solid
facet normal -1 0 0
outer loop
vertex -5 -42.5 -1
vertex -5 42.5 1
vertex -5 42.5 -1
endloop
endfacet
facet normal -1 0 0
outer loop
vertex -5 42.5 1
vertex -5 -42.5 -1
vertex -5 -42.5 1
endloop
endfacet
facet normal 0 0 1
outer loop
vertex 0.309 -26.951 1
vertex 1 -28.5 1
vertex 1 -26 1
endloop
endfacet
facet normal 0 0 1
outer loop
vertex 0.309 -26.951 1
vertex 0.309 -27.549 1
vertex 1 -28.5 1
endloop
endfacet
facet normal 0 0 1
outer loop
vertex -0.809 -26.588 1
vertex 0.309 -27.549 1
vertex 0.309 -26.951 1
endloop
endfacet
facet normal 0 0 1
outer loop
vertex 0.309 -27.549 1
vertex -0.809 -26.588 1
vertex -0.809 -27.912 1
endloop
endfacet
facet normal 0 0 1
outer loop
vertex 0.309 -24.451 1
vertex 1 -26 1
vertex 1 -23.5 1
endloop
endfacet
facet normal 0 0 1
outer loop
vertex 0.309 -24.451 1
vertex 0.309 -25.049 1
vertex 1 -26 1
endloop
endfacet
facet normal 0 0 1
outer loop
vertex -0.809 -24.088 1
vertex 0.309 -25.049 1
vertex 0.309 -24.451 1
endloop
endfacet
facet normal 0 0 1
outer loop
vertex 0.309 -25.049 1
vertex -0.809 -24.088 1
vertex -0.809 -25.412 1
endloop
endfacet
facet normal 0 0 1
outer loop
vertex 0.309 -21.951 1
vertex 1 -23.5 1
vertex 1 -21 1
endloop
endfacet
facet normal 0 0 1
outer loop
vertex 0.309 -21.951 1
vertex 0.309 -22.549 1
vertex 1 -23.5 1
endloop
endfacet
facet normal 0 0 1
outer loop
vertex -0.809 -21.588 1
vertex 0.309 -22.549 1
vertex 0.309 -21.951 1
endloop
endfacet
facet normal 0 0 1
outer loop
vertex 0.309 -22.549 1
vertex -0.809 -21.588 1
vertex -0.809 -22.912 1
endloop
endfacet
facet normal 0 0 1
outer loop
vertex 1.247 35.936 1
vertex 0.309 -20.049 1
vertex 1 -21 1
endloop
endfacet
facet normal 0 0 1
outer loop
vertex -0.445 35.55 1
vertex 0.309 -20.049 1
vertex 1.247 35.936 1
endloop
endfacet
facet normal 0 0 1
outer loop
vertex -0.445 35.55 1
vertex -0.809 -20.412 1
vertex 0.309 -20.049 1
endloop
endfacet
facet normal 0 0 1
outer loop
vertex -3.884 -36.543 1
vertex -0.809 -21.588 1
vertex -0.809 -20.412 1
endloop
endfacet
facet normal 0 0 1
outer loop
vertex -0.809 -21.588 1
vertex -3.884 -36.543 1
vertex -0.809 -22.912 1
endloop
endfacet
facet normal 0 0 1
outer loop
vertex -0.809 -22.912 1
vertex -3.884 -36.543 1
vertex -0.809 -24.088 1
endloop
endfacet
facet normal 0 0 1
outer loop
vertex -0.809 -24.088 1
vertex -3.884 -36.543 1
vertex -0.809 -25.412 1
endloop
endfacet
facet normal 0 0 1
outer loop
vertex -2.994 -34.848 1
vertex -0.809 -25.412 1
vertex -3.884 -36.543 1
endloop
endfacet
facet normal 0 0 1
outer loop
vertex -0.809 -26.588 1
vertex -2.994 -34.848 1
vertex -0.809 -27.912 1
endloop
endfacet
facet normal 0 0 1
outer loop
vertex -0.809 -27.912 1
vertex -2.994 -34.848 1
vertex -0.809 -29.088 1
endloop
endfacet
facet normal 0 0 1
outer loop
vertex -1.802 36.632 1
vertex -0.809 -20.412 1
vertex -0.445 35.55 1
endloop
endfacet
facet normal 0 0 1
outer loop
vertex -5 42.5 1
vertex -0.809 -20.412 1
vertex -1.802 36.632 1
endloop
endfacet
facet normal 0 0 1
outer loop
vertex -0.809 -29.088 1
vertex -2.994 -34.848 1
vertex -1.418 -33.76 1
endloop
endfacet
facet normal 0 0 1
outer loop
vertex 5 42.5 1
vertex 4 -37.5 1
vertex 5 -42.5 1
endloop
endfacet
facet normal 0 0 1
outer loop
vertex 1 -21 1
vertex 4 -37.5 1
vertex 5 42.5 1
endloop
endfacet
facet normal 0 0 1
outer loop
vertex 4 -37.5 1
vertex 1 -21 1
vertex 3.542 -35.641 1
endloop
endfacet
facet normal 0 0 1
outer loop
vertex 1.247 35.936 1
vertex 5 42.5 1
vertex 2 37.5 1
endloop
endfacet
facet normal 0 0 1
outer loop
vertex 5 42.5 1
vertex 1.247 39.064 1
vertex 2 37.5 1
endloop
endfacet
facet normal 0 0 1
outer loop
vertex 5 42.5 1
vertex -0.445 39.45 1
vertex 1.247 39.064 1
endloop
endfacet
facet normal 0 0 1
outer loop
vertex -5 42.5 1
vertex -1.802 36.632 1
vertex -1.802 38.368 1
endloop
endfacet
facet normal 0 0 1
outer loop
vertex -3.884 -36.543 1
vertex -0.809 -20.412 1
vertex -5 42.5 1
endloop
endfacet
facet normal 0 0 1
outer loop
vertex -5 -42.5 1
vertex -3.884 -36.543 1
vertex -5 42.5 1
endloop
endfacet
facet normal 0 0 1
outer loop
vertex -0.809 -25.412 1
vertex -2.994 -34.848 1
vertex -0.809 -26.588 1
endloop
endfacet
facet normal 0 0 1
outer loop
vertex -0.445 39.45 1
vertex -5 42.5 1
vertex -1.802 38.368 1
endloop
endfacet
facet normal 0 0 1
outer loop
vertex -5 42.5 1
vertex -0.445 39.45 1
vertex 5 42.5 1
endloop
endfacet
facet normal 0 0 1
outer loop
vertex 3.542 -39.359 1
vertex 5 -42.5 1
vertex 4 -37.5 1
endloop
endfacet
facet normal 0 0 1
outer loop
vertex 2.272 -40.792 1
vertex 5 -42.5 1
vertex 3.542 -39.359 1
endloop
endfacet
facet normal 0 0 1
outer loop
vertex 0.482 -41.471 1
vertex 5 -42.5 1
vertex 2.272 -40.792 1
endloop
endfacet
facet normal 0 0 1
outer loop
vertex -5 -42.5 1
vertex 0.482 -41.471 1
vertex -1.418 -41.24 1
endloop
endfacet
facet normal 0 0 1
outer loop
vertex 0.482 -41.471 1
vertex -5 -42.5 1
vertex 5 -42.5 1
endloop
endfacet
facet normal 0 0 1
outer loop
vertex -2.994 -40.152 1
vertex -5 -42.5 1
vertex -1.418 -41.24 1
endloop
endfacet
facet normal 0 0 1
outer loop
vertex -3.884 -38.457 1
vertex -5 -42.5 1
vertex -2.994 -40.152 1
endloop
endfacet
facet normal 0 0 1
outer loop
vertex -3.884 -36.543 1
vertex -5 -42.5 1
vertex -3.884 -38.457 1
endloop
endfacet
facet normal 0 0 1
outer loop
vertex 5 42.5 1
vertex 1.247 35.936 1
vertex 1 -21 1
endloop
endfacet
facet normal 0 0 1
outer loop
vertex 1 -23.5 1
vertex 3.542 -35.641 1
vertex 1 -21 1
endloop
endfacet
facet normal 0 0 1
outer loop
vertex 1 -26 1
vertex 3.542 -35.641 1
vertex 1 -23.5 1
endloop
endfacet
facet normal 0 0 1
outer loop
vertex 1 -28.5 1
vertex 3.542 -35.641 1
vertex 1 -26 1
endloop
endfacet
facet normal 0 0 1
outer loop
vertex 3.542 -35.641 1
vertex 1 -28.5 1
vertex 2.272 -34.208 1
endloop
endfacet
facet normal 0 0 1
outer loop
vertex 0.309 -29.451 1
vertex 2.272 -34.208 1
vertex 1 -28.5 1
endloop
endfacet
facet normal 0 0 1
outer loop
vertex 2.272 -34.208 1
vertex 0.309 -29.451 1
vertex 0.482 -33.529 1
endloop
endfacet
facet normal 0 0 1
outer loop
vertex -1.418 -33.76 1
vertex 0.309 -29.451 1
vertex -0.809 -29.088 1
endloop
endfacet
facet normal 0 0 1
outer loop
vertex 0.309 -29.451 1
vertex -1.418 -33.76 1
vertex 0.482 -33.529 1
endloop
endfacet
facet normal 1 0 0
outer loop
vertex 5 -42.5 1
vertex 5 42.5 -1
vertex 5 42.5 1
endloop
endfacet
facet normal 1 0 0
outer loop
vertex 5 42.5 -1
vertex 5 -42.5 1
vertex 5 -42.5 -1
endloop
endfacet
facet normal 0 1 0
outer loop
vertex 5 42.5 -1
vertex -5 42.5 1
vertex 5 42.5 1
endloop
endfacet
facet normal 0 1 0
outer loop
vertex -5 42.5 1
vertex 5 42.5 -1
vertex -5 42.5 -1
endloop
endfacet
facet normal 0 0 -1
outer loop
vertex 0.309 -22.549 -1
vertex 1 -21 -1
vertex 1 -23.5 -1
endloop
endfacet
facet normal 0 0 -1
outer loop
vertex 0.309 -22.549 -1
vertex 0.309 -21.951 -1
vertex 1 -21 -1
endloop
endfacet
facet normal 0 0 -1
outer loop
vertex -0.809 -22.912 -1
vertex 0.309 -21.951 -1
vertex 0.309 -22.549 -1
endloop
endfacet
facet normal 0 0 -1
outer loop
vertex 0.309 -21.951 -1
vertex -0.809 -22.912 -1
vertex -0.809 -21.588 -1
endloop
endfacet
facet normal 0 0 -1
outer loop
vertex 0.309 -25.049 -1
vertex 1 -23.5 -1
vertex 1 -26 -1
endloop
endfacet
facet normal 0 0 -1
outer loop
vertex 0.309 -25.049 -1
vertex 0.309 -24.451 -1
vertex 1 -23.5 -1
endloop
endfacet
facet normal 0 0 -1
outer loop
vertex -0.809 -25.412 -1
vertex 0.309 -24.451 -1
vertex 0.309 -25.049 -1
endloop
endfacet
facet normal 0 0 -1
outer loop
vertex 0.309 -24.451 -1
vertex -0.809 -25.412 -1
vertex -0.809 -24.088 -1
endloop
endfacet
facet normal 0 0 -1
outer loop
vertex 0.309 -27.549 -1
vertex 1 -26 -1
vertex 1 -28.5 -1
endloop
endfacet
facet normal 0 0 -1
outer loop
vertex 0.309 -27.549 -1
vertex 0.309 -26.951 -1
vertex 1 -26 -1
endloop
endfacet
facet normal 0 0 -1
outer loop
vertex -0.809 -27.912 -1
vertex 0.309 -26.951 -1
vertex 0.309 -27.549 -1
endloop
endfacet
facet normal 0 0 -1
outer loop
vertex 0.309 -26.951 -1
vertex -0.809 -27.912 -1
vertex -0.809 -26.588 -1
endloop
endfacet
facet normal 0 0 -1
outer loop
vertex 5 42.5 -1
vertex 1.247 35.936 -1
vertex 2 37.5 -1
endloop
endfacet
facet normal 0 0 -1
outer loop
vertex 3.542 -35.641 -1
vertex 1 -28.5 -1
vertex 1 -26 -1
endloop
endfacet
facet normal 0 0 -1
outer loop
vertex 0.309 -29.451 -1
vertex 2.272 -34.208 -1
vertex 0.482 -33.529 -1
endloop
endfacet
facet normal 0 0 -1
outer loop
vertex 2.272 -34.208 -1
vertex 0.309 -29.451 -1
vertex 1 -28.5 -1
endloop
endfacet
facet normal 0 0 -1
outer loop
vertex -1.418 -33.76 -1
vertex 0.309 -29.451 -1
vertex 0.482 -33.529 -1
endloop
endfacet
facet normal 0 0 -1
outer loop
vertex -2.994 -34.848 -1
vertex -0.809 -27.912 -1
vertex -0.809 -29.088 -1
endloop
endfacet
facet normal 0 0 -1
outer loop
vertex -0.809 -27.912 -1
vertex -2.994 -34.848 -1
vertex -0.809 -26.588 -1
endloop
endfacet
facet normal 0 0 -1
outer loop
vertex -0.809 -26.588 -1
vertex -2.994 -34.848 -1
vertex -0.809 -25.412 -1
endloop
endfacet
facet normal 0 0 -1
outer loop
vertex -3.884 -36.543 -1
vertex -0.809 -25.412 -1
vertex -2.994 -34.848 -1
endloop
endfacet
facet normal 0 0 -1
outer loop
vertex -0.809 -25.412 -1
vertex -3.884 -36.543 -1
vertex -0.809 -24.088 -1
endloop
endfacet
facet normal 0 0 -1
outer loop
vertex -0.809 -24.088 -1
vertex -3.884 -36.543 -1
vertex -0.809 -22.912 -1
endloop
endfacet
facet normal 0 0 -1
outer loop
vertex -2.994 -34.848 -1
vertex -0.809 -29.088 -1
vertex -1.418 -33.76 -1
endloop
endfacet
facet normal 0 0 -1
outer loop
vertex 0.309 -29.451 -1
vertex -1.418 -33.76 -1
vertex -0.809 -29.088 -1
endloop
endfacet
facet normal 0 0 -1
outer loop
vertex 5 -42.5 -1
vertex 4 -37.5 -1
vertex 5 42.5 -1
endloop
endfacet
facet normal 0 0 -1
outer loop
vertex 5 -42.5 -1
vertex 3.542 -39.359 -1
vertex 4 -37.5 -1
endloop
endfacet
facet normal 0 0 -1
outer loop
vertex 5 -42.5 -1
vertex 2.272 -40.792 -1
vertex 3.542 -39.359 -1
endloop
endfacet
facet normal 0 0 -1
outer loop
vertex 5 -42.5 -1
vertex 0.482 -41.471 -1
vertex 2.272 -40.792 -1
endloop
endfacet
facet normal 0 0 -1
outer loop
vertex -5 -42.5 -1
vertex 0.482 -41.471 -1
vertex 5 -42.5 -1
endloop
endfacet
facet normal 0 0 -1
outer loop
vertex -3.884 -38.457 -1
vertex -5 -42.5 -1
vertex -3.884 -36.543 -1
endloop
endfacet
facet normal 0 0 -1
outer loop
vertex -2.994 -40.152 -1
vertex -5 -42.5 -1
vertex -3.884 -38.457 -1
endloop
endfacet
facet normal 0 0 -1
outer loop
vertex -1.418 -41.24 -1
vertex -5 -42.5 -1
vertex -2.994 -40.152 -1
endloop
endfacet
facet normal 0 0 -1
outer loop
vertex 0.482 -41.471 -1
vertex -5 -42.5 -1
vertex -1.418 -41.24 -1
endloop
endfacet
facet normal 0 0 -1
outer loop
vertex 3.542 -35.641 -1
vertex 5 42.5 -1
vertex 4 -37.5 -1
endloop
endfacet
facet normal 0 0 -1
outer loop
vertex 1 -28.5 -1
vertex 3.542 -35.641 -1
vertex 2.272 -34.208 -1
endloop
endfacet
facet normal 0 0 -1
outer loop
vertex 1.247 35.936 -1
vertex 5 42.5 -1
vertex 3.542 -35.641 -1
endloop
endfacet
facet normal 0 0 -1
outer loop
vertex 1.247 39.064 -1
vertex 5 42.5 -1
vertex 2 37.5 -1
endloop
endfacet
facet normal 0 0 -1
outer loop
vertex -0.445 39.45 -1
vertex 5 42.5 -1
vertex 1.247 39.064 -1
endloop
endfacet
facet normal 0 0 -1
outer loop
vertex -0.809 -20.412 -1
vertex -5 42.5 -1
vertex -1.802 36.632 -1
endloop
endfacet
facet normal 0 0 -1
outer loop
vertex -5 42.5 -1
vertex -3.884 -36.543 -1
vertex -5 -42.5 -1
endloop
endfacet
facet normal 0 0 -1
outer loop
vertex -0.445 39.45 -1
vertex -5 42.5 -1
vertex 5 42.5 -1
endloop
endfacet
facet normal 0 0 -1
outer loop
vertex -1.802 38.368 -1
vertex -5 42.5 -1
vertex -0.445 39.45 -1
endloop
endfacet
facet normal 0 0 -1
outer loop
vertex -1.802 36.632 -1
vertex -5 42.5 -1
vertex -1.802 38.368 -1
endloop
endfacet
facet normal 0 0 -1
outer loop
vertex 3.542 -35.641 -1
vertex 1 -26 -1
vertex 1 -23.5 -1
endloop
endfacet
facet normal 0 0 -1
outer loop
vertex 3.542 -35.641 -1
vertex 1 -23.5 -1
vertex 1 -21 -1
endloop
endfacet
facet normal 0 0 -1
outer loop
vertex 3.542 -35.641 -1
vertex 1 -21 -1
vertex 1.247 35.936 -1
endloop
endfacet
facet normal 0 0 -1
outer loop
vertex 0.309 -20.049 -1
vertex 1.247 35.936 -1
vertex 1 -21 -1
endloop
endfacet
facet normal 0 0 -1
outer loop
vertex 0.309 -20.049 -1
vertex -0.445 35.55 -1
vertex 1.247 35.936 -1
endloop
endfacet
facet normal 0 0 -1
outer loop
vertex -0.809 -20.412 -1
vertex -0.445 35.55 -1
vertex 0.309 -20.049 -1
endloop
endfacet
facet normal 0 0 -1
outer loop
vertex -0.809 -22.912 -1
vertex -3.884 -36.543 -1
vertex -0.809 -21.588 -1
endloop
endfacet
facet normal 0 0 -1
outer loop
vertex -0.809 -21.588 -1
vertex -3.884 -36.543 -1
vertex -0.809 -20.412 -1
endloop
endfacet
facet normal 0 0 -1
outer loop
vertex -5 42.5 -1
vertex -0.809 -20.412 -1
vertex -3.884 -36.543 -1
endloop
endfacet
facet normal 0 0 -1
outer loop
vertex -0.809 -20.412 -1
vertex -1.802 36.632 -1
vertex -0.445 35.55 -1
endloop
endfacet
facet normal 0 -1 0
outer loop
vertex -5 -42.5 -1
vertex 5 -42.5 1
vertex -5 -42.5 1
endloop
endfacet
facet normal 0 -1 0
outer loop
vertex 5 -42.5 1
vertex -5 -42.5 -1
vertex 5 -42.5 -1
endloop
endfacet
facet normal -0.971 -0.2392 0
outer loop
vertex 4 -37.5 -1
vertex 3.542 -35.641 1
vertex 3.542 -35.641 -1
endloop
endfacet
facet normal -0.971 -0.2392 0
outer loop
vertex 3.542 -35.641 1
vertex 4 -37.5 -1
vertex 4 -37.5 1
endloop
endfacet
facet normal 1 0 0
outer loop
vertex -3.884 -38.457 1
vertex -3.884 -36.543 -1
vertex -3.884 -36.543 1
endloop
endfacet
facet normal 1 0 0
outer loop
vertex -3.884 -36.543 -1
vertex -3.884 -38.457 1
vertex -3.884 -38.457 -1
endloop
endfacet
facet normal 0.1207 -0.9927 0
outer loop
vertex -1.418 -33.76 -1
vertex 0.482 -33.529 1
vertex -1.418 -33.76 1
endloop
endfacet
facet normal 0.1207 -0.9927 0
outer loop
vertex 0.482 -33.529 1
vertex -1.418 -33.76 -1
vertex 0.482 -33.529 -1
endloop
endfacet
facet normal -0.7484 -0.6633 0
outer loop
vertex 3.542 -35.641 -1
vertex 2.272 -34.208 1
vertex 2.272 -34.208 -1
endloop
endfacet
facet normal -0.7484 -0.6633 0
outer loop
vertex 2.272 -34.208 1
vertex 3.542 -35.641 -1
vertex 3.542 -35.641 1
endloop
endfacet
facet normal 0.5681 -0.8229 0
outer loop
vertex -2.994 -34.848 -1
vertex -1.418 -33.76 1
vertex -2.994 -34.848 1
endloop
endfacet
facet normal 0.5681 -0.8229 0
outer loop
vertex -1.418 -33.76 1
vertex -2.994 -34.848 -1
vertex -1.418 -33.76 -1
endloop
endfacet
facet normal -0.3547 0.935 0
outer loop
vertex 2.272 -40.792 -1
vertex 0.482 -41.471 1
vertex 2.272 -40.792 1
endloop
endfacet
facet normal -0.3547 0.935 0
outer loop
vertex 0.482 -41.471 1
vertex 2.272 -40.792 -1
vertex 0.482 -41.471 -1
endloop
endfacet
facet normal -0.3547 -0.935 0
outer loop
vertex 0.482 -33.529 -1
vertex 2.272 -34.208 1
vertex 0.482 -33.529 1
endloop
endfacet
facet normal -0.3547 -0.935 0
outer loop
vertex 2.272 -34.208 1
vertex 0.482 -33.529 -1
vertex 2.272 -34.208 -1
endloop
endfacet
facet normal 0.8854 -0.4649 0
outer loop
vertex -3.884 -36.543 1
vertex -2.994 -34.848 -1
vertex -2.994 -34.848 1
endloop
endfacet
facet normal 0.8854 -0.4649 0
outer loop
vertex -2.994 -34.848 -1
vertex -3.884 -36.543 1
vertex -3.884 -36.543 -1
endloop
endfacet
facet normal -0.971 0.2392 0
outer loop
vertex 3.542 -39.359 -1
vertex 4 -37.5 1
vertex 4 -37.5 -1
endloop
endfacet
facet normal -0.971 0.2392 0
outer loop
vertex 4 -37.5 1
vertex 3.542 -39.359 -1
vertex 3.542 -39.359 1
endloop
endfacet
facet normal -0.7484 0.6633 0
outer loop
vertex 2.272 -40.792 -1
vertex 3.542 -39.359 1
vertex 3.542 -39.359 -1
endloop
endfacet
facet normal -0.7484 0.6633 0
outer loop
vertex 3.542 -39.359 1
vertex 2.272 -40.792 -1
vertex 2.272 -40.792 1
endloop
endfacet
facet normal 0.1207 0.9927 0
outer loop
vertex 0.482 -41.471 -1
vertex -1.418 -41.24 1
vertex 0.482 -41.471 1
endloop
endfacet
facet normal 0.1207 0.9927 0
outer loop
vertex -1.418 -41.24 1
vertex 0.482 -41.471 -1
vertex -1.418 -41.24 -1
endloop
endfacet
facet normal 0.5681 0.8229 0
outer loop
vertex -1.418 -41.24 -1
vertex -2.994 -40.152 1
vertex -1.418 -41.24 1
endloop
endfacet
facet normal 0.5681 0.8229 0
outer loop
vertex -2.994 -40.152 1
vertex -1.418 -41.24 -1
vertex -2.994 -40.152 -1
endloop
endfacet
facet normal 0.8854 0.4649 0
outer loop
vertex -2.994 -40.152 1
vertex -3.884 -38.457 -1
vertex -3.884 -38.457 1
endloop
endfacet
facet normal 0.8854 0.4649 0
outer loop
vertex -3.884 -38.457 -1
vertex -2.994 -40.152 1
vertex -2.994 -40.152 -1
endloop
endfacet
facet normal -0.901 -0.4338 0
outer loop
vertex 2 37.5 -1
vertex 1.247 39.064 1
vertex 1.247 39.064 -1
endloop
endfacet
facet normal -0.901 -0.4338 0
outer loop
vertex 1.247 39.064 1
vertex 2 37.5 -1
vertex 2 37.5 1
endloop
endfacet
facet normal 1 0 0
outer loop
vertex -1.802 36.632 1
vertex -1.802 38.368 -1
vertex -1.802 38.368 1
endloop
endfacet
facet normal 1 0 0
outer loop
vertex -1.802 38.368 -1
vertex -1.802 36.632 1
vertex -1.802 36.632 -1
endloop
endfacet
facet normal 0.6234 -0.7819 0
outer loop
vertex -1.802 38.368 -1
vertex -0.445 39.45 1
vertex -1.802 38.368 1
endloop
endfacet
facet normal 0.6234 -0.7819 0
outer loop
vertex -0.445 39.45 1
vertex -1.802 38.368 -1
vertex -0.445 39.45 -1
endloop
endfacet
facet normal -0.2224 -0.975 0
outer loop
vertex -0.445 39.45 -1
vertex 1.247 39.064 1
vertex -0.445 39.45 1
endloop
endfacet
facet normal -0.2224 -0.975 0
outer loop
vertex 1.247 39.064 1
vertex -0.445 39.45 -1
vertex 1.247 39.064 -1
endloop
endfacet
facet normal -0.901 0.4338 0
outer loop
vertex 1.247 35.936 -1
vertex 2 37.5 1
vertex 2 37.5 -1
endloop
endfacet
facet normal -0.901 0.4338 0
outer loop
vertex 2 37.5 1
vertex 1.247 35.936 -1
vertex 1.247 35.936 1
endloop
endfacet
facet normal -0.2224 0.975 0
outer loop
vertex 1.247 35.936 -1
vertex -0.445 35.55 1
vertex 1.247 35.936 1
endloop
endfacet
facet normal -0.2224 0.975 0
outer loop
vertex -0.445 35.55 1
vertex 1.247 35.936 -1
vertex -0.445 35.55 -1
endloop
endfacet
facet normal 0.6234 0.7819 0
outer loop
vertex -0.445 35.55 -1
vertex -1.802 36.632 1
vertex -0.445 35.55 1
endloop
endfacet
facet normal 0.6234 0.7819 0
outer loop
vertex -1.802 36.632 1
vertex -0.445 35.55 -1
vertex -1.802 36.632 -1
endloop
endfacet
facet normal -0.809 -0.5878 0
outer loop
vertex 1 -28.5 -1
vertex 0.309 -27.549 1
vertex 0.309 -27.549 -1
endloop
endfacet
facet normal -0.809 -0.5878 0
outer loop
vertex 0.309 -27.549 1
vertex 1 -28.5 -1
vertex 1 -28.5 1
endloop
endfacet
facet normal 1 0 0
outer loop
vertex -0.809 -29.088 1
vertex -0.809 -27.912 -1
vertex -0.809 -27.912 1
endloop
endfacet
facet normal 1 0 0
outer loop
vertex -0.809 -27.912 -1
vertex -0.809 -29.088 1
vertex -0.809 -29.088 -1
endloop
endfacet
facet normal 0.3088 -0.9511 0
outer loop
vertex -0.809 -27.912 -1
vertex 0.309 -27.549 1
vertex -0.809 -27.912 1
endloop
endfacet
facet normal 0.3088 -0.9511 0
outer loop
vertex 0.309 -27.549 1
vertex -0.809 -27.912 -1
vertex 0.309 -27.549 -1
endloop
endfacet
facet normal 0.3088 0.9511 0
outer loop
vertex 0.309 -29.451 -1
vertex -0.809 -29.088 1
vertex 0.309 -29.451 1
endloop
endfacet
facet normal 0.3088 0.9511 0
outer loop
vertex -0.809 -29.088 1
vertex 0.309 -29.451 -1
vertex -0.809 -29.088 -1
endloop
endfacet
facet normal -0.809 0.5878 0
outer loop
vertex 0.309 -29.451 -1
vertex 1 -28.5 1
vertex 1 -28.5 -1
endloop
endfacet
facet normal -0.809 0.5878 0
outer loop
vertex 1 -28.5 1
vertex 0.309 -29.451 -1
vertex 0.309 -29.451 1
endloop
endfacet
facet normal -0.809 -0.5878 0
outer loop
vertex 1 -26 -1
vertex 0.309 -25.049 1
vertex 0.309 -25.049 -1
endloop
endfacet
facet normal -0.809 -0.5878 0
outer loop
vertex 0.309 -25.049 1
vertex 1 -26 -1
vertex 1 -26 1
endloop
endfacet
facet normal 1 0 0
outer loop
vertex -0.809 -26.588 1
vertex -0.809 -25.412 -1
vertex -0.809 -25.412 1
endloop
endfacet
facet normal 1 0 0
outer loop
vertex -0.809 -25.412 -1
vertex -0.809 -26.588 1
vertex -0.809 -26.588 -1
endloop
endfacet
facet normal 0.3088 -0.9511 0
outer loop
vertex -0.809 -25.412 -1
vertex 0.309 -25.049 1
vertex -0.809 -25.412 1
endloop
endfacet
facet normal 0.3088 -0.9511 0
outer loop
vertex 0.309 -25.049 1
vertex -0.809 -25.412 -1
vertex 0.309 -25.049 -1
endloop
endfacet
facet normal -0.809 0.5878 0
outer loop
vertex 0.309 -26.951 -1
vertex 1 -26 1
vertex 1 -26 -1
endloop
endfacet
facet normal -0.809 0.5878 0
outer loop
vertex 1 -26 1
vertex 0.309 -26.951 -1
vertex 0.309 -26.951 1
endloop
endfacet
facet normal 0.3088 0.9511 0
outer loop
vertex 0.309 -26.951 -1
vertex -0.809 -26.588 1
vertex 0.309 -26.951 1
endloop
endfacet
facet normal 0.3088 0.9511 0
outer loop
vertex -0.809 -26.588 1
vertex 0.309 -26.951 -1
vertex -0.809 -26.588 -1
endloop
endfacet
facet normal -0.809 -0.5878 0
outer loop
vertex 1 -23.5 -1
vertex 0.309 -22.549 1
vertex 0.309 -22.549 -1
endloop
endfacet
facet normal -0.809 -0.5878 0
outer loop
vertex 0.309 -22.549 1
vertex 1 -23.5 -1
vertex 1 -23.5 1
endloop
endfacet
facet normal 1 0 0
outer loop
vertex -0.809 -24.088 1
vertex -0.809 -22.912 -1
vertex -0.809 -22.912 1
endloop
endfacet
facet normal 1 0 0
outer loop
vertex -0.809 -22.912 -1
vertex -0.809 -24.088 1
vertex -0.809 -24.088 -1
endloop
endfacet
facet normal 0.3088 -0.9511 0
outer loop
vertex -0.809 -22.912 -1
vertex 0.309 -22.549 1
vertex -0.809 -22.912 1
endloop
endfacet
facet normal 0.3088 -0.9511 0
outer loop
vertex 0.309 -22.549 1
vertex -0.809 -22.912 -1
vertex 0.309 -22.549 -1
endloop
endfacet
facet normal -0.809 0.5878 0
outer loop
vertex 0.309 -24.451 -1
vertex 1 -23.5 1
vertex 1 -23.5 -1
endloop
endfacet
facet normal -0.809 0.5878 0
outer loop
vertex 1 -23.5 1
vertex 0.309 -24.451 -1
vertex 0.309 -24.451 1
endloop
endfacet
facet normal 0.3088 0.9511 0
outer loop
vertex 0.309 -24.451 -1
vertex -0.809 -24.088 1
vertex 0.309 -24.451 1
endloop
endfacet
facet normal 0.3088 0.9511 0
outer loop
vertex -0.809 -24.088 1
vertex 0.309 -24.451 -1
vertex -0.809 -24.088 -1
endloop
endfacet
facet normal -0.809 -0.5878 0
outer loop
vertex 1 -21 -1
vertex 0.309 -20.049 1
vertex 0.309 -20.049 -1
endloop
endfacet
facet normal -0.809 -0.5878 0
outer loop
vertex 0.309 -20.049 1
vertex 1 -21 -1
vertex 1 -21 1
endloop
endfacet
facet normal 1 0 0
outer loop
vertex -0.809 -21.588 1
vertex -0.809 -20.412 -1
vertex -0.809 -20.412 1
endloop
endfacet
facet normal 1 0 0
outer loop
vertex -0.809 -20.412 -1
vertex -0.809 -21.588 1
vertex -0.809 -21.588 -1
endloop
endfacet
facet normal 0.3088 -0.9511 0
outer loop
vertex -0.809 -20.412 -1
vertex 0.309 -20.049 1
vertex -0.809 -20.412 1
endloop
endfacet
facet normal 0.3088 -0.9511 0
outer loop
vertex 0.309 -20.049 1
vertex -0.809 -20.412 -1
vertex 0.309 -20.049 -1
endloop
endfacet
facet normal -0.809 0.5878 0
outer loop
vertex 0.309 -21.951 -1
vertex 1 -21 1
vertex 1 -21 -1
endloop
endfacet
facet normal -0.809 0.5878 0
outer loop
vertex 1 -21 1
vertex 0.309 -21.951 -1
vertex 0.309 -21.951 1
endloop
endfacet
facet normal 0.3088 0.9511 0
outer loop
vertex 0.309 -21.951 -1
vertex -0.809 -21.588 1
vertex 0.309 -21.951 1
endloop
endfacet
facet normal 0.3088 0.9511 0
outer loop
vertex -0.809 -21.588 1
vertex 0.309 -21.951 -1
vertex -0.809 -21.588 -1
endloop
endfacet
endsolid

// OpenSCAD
difference(){
    // Servo lever base
    scale([10,85,2]) cube(1,1,1, center=true);
    
    // Servo screwing hole
    translate([0,-37.5,0]) cylinder(d=8,h=10, center=true);
    
    // Claw pulling hook
    translate([0,37.5,0]) cylinder(d=4,h=10, center=true);
    
    // Servo lever fasteners
    translate([0,-37.5+9,0]) cylinder(d=2,h=10, center=true);
    translate([0,-37.5+11.5,0]) cylinder(d=2,h=10, center=true);
    translate([0,-37.5+14,0]) cylinder(d=2,h=10, center=true);
    translate([0,-37.5+16.5,0]) cylinder(d=2,h=10, center=true);
}
